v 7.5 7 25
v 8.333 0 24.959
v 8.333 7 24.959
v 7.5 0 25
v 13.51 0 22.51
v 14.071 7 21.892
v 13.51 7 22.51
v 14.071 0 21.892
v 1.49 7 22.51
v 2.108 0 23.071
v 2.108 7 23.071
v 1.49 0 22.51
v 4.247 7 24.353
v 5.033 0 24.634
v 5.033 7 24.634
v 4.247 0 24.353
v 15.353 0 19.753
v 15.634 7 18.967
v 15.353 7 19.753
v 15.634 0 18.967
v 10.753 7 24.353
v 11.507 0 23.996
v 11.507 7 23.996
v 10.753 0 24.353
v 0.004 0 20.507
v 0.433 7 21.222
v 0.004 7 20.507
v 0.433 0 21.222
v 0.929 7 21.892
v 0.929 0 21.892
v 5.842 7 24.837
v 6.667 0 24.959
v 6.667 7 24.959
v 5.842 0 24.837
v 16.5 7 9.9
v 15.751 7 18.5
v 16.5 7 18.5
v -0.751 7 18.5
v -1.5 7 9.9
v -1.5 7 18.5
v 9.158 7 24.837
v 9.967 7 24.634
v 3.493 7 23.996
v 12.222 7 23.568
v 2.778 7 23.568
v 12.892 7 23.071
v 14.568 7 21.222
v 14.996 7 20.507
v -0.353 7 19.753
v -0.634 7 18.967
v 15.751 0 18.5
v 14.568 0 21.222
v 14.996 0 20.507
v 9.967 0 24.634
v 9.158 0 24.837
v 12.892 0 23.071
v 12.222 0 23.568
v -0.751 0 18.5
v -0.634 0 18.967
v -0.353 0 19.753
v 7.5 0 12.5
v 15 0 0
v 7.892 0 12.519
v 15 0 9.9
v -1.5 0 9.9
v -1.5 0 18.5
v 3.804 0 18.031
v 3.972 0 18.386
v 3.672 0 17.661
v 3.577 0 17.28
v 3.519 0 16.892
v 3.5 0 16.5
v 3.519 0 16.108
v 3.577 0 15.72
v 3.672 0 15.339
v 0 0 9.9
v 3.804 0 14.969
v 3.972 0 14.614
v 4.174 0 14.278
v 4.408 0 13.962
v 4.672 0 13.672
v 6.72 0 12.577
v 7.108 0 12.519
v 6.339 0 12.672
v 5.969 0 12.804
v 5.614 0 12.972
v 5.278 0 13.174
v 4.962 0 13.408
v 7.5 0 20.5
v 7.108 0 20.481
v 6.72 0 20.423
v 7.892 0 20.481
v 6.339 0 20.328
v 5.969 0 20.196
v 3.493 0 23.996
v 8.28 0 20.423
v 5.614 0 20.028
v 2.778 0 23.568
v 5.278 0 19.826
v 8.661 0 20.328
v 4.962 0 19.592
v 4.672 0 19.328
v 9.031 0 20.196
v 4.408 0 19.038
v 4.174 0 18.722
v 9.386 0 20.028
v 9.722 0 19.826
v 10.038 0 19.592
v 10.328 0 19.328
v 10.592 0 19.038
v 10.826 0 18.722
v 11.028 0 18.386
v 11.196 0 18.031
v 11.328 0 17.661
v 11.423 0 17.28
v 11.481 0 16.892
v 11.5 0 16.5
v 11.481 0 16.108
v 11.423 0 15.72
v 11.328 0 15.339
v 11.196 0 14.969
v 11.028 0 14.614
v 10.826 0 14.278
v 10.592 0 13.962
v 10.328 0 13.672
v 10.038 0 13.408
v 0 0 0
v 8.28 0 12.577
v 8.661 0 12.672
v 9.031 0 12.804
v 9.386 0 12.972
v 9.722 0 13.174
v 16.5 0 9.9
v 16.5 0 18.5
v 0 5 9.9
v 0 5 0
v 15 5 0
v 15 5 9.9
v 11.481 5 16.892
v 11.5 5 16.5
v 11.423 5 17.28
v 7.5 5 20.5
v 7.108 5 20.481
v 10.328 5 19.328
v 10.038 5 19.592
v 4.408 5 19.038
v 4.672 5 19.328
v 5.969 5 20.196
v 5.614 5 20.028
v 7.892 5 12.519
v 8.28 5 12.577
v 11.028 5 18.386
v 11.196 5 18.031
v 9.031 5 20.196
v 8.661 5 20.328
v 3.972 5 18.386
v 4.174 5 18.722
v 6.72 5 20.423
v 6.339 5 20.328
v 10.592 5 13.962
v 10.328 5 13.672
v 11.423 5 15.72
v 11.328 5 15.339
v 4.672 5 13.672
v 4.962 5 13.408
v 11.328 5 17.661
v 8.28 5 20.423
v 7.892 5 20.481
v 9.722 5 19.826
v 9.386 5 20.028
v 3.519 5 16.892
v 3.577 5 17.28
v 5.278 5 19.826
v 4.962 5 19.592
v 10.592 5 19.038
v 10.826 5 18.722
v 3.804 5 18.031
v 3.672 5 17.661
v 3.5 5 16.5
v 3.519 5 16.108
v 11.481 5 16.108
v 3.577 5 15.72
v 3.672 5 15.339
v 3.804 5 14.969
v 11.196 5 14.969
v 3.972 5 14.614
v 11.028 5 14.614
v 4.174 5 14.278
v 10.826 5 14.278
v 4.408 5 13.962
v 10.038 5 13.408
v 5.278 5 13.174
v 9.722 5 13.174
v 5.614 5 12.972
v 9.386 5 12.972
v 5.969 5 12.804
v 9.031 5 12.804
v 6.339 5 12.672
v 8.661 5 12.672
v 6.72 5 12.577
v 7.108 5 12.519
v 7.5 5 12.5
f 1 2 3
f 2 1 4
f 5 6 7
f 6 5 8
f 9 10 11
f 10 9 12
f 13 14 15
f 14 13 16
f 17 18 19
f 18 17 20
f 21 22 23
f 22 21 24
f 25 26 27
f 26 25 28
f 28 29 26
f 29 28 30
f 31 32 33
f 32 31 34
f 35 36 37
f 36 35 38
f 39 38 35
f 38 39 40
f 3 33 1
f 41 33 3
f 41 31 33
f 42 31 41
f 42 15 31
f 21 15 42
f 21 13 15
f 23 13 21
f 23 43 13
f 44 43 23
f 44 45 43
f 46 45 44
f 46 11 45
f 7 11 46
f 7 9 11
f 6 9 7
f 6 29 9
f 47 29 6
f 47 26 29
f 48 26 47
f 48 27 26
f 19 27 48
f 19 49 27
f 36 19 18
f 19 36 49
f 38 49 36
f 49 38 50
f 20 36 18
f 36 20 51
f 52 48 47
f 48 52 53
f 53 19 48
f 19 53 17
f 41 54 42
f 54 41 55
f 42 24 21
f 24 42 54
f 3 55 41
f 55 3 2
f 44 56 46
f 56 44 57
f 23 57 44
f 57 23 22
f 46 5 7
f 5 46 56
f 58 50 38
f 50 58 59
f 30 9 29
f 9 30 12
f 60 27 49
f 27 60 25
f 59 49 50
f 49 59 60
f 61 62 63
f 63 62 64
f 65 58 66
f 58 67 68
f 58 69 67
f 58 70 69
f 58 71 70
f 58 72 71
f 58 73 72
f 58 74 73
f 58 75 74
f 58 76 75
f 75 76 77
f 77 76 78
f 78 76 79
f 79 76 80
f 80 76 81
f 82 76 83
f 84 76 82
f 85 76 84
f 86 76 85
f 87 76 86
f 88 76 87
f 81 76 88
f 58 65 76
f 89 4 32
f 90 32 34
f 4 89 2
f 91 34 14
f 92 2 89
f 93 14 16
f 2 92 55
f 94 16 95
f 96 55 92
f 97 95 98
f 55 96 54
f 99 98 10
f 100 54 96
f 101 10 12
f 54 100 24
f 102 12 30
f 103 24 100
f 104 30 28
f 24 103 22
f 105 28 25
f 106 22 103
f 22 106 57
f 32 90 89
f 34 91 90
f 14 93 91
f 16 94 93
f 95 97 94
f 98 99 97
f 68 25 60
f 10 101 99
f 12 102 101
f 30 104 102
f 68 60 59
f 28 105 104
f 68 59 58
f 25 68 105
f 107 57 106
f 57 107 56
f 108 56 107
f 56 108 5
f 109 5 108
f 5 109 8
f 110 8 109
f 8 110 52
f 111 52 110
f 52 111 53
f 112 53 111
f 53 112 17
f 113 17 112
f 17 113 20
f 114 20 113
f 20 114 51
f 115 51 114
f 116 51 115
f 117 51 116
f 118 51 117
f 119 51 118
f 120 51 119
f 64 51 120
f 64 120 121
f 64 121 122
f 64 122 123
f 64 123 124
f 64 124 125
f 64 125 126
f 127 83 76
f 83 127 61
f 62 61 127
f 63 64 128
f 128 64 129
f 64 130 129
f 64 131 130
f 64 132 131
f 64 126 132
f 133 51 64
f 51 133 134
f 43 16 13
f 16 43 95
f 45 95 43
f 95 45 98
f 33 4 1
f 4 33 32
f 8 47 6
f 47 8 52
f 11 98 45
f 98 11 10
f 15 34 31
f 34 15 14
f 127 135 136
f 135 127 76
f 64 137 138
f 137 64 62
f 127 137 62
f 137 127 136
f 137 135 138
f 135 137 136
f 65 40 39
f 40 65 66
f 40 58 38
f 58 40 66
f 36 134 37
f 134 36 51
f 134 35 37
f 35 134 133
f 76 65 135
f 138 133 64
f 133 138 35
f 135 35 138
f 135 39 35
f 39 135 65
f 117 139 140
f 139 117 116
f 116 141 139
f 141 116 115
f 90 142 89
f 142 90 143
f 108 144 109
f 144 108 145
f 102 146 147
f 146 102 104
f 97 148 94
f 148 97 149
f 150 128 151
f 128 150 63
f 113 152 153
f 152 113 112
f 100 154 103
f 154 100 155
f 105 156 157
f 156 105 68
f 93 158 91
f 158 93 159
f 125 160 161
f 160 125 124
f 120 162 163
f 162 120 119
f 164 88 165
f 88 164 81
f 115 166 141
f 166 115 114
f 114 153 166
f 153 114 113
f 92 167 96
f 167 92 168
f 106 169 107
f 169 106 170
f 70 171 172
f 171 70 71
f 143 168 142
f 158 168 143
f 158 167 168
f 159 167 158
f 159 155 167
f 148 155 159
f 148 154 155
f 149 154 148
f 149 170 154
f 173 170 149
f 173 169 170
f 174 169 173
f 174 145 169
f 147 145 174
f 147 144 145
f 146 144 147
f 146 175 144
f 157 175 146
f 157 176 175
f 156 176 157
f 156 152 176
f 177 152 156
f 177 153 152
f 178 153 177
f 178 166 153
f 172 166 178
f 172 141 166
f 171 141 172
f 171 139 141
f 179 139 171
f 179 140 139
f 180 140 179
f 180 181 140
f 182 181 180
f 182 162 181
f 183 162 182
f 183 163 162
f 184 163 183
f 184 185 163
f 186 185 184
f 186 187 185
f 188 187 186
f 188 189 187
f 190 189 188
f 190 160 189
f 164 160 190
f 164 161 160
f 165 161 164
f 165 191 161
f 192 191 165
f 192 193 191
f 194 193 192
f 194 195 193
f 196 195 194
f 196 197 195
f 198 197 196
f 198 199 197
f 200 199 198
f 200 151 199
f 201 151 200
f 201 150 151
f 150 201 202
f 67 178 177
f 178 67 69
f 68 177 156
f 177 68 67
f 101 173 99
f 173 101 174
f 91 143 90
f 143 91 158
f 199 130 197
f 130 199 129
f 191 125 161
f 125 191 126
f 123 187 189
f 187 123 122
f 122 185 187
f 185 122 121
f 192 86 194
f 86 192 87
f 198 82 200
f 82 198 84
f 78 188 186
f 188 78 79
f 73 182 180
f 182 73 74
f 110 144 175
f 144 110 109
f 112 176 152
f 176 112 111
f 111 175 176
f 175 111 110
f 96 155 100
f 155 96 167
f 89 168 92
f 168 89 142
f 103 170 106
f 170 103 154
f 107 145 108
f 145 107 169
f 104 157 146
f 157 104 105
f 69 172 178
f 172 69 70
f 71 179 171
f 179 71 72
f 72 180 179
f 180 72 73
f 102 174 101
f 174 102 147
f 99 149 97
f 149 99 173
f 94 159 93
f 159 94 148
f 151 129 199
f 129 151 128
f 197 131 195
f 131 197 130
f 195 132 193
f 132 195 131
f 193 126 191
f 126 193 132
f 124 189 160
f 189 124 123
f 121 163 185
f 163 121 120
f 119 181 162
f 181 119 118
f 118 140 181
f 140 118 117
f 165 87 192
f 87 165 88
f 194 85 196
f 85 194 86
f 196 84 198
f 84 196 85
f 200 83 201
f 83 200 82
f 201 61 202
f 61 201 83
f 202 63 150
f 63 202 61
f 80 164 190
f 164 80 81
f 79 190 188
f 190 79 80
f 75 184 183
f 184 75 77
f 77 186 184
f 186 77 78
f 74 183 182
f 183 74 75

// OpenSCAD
$fn = 64;

peg_height = 10;
hole_radius = 4;

difference() {
    union() {
        cube([15, 5, peg_height]);
        
        translate([-(18-15)/2, 0, 9.9])
            cube([18, 7, (17/2)+0.1]);
        
        translate([15/2, 7, 15-(17/2)+peg_height])
            rotate([90, 0, 0])
                difference() {
                    cylinder(7, 17/2, 17/2);
                    translate([-10, -10.1, -0.1])
                        cube([20, 10, 10]);
                }
    }
    
    translate([15/2, 5, 15-(17/2)+10])
        rotate([90, 0, 0])
            cylinder(10, hole_radius, hole_radius);
}
